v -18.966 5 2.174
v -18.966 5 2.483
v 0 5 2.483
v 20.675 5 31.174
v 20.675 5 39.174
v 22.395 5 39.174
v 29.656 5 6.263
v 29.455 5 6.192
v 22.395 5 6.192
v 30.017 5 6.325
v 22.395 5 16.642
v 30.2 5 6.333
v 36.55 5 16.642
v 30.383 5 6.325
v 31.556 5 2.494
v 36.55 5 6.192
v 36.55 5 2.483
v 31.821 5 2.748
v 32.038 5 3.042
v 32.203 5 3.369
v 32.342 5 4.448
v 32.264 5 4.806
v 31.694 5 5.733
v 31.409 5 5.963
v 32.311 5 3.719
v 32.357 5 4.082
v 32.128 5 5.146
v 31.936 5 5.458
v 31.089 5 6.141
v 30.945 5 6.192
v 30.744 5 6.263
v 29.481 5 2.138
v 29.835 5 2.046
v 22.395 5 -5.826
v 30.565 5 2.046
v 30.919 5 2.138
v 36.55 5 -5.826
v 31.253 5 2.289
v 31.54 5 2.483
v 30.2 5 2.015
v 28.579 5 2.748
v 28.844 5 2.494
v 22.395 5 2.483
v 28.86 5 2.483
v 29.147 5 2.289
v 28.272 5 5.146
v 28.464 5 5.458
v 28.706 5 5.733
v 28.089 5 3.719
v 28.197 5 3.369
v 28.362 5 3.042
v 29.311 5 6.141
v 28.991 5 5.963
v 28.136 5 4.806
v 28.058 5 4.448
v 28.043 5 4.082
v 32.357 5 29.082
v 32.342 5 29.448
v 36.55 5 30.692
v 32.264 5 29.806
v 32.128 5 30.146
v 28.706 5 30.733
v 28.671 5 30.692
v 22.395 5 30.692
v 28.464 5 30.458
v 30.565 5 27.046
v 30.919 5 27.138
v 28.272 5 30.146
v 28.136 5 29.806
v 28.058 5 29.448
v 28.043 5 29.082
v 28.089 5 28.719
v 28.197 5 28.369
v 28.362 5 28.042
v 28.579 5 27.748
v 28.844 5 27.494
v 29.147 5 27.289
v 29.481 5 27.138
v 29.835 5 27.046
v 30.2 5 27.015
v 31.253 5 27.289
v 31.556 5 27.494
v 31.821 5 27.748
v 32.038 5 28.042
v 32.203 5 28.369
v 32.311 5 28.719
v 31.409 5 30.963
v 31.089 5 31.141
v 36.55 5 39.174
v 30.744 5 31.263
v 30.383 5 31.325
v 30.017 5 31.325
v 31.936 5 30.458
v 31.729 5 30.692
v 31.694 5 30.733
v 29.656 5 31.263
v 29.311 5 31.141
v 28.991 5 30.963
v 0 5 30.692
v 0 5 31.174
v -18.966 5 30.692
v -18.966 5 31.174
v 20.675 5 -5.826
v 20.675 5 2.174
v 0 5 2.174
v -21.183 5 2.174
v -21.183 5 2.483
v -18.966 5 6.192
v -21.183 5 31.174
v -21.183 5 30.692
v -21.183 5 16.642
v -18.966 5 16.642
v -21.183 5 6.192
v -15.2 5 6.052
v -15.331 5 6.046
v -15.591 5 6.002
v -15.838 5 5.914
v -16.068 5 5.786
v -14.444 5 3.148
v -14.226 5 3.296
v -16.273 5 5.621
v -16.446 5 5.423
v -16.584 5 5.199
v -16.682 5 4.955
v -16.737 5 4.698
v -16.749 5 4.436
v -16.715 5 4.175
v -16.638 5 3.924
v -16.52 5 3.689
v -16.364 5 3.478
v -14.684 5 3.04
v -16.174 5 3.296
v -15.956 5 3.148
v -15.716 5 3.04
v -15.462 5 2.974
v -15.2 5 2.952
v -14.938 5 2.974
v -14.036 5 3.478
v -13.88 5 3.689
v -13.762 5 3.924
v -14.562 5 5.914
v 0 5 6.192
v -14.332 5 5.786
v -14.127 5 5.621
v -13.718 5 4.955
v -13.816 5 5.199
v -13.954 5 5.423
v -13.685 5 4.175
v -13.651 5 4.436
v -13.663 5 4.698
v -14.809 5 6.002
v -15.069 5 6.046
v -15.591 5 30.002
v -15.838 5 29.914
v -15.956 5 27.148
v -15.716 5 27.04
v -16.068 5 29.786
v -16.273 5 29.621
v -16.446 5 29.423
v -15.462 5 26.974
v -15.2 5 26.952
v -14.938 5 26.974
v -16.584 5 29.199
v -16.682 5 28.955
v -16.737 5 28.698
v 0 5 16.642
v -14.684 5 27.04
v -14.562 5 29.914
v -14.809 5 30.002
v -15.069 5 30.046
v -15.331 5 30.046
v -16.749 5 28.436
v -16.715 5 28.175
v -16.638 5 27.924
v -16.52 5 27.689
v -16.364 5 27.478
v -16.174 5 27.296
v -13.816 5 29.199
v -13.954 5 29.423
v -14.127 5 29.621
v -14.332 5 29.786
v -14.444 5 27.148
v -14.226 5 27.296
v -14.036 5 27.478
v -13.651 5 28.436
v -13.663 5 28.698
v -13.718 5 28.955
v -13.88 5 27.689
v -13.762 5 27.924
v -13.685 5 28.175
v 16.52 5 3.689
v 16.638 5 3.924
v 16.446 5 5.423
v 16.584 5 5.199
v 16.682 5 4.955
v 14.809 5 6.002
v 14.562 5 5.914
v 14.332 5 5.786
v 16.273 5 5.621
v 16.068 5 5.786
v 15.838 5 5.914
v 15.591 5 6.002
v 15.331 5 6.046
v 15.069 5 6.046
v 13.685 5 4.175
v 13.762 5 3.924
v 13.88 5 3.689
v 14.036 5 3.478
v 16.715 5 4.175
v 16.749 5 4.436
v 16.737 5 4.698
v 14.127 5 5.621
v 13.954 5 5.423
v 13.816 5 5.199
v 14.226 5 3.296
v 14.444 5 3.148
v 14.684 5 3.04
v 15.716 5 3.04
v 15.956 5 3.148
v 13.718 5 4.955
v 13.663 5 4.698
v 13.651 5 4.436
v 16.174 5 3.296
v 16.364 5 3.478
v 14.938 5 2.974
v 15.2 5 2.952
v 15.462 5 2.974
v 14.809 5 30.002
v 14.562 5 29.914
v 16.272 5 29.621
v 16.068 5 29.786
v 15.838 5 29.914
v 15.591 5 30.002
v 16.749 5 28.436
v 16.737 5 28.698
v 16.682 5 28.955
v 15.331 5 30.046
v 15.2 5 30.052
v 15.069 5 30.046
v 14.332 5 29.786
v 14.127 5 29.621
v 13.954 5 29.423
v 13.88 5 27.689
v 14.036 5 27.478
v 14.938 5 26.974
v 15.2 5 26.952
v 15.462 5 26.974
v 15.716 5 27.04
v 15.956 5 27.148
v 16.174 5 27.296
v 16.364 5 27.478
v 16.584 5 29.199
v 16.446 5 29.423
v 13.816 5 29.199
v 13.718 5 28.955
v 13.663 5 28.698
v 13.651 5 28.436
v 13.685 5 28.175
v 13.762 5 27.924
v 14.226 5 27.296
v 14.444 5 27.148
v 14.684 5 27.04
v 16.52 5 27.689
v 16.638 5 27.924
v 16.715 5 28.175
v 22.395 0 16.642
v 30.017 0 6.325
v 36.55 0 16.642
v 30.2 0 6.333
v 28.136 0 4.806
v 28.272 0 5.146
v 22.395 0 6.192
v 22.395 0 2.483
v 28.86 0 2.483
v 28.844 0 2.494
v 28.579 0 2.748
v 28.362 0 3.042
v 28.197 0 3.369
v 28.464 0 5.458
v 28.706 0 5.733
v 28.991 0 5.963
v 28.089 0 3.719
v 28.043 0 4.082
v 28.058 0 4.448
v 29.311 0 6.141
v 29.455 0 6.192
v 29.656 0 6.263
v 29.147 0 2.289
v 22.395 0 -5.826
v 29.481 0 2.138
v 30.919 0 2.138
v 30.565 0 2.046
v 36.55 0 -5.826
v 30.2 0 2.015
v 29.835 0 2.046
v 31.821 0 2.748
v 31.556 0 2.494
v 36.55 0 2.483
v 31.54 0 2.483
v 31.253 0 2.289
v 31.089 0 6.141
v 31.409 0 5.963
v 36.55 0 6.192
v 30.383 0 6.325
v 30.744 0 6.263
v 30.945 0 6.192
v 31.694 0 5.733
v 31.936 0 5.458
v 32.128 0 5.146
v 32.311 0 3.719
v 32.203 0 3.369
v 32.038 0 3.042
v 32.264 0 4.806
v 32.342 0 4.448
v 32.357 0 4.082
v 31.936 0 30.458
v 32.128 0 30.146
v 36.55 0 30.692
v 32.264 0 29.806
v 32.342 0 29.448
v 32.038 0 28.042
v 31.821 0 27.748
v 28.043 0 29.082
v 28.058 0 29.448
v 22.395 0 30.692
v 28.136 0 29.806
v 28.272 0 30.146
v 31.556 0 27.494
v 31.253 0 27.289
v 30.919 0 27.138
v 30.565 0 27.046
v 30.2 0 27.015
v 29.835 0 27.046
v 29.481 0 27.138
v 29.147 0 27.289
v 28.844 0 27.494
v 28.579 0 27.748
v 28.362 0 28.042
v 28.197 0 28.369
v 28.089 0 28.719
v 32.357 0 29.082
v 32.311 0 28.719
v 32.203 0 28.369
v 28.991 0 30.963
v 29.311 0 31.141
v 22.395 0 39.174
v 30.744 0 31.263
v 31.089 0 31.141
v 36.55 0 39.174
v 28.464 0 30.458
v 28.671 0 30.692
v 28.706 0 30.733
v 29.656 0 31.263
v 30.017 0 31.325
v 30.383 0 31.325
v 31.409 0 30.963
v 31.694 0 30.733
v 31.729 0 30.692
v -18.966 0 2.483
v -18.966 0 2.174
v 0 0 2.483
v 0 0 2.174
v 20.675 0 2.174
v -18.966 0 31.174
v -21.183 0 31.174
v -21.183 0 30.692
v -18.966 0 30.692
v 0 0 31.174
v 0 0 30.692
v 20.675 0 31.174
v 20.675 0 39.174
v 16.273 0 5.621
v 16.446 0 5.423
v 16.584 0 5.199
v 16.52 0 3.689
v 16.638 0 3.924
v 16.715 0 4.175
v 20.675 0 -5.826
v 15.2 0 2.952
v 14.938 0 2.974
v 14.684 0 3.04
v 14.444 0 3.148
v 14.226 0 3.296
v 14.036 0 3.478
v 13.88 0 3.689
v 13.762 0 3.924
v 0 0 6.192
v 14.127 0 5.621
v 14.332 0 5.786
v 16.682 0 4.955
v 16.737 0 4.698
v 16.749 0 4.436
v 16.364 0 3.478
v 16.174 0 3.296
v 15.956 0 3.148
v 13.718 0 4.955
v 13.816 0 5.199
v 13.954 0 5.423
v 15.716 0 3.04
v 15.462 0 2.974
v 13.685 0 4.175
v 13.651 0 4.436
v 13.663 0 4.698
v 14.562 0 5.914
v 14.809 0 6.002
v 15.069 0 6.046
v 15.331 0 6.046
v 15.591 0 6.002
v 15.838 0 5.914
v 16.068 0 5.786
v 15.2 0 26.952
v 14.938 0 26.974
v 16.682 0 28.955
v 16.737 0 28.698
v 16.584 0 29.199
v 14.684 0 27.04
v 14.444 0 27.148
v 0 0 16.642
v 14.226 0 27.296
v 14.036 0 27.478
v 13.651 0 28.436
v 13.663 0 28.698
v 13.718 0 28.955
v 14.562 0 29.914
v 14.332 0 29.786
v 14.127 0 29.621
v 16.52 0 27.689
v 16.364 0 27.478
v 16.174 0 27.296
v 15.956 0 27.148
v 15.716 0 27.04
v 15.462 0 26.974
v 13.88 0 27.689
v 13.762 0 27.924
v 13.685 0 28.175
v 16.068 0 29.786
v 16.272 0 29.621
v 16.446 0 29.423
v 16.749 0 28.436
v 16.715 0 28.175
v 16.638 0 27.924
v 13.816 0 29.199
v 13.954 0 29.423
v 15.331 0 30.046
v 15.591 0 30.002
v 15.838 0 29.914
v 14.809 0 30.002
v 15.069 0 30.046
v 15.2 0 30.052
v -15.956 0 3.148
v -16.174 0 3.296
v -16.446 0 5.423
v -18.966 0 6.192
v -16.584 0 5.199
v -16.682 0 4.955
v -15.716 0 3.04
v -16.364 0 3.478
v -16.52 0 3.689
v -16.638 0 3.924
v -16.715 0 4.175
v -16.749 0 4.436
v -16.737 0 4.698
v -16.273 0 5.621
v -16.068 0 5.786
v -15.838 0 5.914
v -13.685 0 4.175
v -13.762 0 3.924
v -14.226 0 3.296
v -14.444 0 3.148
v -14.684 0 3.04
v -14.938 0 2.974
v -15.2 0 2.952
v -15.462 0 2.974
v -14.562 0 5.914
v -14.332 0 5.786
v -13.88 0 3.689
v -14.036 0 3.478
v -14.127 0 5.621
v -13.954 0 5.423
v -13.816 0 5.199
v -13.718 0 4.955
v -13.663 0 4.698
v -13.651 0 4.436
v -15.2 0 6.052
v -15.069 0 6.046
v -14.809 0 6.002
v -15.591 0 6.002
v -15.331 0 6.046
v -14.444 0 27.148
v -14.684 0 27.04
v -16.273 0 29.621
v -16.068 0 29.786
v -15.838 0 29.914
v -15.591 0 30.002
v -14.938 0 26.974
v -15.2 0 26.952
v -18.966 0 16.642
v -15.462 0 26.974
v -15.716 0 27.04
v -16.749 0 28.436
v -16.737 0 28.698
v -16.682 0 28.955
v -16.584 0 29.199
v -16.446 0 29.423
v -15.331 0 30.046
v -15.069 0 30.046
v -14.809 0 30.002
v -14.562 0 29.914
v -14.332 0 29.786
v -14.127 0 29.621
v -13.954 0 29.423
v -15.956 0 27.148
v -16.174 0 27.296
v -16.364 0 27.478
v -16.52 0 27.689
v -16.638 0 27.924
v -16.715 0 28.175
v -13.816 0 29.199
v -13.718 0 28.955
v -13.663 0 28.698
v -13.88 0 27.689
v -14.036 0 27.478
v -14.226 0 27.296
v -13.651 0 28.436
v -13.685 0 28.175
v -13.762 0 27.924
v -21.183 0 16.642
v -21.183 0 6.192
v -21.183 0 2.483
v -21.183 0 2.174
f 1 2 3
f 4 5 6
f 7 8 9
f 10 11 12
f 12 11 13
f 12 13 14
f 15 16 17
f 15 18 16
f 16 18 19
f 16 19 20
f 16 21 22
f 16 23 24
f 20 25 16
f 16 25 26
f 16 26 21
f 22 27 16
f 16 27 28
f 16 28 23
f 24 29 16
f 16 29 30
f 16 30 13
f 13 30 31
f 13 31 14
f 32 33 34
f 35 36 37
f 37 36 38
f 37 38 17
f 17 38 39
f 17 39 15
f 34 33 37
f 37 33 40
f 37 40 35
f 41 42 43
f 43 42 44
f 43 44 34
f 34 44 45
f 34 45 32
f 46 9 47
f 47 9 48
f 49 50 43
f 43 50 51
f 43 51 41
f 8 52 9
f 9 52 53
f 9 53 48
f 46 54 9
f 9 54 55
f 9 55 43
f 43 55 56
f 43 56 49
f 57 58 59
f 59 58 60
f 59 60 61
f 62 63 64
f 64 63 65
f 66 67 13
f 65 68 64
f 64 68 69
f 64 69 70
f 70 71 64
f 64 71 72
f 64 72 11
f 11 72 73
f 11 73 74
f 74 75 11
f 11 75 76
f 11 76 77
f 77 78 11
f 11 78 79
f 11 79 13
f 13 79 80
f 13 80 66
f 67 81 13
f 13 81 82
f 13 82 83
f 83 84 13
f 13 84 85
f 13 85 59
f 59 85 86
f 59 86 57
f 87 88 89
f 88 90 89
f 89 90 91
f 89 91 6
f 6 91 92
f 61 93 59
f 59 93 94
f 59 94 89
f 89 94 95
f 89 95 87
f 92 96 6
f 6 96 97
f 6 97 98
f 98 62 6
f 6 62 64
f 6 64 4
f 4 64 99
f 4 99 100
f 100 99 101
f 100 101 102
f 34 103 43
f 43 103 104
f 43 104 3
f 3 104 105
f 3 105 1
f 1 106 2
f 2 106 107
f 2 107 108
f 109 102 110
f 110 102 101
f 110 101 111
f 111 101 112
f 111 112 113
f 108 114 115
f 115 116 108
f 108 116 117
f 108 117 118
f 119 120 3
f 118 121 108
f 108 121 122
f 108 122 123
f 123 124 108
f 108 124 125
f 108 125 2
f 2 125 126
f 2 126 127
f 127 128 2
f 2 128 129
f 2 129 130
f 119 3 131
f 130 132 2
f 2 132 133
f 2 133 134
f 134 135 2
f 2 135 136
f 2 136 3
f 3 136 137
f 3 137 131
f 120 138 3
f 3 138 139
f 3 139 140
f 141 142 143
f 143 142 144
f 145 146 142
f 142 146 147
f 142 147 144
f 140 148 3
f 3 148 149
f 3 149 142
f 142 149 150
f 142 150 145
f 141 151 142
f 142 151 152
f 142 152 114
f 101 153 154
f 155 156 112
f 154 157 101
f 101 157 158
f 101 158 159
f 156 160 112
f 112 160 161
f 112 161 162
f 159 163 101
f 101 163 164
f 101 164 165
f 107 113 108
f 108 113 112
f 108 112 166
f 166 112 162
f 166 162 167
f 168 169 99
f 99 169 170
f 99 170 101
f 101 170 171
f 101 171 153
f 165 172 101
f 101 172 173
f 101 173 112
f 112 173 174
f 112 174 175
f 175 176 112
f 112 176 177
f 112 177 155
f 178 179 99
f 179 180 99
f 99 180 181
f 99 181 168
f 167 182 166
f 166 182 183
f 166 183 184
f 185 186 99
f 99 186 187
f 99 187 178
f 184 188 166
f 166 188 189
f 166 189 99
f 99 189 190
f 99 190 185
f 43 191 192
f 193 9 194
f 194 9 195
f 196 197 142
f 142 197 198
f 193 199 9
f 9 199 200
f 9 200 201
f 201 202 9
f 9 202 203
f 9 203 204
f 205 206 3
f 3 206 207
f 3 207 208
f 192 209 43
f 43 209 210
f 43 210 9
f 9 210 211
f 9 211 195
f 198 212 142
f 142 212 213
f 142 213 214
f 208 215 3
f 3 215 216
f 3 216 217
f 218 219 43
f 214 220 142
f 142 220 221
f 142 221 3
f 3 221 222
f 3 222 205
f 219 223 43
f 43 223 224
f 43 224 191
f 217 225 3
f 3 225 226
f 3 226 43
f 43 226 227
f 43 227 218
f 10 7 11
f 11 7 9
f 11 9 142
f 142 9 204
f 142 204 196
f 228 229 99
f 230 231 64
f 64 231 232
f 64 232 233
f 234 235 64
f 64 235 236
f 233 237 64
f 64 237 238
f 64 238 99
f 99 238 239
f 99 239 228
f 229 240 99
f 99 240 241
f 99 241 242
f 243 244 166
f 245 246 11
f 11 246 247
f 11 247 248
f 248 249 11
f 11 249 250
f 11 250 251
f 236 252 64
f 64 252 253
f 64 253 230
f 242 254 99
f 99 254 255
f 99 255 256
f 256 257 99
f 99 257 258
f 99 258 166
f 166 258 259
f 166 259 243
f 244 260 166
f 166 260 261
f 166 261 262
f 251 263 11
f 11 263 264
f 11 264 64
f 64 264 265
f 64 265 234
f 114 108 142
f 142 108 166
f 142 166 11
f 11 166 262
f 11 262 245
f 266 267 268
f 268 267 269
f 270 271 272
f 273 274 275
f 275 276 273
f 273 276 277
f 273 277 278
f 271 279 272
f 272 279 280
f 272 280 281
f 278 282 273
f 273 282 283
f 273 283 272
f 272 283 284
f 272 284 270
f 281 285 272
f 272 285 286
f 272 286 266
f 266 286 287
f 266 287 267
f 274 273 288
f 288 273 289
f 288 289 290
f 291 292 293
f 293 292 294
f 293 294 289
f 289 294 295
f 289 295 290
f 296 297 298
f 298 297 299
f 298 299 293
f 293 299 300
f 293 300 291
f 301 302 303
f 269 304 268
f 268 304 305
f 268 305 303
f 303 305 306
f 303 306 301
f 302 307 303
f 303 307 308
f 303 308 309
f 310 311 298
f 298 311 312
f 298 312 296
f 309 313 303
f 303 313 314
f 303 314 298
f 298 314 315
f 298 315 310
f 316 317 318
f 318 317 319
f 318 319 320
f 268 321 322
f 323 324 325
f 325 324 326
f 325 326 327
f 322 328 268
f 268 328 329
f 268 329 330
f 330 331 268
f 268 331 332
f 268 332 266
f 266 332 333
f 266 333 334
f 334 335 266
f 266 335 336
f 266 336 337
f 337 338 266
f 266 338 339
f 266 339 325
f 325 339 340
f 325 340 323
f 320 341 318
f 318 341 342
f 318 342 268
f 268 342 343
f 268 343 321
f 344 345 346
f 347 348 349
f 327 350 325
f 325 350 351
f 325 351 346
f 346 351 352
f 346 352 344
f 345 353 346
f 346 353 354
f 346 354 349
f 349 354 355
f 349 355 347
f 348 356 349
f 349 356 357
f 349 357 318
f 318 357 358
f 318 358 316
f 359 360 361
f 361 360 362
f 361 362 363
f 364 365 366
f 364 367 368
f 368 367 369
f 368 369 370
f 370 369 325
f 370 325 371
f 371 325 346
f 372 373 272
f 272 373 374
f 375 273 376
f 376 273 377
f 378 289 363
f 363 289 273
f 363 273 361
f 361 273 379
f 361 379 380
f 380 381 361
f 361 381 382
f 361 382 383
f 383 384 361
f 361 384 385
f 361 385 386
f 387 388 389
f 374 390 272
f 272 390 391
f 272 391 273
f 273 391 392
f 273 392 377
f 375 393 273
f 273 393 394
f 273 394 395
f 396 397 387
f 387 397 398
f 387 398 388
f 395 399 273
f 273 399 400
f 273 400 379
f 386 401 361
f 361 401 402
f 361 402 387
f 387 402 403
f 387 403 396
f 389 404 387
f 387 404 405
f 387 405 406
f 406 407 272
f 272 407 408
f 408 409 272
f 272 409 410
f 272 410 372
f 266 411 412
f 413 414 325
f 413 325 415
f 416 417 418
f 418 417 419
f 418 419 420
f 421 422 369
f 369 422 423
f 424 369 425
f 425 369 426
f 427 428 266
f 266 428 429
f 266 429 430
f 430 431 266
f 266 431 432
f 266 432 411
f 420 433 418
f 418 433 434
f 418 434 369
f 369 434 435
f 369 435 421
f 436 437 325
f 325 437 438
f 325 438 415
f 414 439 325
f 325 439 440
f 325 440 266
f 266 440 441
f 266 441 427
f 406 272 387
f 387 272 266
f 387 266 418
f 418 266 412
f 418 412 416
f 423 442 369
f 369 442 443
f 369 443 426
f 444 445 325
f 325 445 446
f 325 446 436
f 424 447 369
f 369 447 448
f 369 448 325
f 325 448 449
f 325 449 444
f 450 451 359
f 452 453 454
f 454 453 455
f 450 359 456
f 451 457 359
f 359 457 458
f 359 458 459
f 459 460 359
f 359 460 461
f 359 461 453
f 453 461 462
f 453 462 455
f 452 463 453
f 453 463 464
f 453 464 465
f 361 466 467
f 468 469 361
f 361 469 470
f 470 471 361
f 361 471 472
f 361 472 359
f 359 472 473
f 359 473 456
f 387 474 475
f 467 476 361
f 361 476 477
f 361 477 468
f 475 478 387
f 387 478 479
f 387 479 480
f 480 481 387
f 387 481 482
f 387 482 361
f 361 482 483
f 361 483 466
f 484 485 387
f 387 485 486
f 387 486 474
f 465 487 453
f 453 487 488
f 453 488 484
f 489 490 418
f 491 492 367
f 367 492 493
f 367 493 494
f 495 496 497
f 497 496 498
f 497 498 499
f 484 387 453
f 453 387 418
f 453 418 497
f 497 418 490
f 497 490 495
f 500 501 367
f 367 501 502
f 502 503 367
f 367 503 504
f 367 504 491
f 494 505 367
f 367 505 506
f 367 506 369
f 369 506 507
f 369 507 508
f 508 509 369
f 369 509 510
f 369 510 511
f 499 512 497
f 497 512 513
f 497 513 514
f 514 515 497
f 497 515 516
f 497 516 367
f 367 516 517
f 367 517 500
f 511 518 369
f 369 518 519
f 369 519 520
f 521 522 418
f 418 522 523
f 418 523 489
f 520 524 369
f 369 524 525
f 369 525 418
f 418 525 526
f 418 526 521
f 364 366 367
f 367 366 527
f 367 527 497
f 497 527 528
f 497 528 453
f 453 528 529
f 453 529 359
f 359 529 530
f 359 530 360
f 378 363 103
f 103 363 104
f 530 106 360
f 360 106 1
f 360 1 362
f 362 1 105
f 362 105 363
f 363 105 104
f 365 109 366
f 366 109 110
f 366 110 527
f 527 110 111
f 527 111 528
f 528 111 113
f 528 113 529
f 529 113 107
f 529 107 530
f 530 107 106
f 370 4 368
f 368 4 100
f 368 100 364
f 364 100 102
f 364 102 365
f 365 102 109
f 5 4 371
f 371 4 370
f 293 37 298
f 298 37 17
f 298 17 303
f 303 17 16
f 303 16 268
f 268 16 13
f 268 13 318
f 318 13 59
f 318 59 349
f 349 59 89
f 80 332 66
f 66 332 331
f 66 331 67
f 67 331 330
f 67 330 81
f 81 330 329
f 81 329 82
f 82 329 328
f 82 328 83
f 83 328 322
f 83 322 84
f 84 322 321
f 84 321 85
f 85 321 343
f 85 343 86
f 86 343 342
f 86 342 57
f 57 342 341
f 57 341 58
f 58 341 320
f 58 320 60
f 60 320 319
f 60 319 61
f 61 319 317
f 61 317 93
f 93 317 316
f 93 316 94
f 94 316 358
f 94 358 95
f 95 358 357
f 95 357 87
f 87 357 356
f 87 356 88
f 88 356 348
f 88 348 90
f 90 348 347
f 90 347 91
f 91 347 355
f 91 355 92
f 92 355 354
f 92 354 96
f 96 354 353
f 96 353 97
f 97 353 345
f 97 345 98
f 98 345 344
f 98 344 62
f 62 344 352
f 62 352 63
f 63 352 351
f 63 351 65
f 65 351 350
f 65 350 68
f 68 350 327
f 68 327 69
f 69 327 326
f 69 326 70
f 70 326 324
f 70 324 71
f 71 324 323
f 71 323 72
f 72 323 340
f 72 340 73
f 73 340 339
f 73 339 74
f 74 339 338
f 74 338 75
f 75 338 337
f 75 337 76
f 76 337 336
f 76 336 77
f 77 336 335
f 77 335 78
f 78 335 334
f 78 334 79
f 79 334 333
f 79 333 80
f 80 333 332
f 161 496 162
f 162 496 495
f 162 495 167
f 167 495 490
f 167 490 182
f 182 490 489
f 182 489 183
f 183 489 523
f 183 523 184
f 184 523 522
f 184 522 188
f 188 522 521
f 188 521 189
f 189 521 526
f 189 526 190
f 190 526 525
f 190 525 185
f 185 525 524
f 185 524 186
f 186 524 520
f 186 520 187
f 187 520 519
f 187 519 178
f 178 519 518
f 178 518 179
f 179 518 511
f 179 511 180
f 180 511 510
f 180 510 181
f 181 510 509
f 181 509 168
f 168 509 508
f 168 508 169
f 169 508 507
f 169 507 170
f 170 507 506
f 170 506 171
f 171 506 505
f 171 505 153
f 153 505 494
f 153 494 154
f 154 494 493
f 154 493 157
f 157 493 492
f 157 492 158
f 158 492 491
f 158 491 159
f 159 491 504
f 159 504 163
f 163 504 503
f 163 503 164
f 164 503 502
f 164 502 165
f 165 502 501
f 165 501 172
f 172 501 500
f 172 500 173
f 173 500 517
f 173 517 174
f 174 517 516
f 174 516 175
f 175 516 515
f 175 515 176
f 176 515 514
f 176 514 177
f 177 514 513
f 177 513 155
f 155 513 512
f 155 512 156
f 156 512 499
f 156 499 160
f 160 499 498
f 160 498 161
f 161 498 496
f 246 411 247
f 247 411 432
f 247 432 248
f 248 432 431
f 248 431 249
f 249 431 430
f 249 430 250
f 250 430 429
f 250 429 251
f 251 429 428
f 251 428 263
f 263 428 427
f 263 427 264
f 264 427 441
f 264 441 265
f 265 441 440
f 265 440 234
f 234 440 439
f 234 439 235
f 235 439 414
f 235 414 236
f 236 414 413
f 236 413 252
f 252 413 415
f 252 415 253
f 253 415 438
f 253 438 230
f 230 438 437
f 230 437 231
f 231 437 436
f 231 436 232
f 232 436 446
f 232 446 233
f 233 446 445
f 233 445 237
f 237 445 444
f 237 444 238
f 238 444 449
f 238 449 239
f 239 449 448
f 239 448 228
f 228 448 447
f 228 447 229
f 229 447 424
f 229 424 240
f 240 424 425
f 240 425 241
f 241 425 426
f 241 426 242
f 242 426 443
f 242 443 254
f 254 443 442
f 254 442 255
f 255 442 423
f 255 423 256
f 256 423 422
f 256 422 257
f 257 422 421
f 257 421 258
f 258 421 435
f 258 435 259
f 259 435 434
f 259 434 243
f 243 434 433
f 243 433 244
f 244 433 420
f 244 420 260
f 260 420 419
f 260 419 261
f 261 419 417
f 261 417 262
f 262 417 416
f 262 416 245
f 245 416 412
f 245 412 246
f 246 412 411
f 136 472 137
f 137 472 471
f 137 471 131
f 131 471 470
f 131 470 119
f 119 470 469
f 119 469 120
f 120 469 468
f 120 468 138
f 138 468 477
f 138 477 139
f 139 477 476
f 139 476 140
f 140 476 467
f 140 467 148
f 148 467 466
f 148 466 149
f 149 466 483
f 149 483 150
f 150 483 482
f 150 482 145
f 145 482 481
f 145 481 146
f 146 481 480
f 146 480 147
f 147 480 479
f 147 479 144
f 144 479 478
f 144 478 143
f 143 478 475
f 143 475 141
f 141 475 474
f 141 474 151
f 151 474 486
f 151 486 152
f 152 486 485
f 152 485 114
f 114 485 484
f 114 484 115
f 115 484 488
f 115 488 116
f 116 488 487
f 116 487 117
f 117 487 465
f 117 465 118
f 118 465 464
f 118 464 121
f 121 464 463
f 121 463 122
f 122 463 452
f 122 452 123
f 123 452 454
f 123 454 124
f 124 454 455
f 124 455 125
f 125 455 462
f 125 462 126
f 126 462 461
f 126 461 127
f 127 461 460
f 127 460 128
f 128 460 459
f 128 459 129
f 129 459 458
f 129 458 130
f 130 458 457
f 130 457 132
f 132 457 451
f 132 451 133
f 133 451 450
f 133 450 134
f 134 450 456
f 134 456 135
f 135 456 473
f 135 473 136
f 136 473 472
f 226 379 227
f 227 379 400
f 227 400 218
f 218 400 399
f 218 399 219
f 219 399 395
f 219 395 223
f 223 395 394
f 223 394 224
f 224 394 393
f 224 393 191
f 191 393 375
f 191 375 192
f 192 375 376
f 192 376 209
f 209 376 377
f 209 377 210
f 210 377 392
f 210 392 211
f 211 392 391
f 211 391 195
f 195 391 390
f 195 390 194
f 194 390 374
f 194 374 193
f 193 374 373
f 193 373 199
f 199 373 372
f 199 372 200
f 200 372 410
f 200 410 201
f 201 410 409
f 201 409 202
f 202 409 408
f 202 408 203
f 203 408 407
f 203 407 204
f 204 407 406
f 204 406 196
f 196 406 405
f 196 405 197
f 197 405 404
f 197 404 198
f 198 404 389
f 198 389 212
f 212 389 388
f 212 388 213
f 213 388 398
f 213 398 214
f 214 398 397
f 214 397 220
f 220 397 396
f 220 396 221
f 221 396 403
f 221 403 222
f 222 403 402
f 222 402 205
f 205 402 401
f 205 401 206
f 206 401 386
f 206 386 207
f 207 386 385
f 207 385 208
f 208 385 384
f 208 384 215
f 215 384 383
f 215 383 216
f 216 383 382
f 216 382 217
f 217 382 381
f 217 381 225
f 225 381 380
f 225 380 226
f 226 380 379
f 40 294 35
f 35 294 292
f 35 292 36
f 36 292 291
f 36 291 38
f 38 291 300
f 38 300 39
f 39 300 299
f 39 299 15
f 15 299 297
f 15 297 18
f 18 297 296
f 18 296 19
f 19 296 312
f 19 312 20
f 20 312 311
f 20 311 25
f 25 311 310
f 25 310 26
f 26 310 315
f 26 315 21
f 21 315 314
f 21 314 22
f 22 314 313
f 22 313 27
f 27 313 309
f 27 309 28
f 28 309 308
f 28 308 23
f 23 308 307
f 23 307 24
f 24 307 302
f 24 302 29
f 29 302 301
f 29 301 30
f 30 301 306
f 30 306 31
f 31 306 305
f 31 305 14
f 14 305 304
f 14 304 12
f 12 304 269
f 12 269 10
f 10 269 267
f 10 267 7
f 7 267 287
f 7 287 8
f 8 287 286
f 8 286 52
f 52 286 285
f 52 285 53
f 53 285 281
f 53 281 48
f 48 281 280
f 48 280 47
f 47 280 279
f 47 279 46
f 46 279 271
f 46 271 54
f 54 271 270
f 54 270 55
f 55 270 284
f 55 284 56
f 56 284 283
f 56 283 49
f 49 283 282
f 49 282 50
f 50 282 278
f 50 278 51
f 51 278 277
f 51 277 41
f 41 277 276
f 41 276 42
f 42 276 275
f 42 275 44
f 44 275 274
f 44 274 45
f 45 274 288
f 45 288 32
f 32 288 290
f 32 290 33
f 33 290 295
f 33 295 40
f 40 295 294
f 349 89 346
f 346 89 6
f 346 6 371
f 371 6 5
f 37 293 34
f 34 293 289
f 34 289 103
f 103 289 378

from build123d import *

# Parameters (mm, degrees)
SKETCH1_R           = 2.159
SKETCH1_R_2         = 1.55
BOSS_EXTRUDE1_DEPTH = 5
SKETCH2_W           = 32.727568347
SKETCH2_H           = 13.013122107
SKETCH2_W_2         = 39.41277834
SKETCH2_H_2         = 24.474392352
CUT_EXTRUDE1_DEPTH  = 58.151492497


with BuildPart() as part:
    # Sketch1 → Boss-Extrude1 (new body)
    with BuildSketch(Plane(origin=(0, 0, 0), x_dir=(1, 0, 0), z_dir=(0, 1, 0))):
        Polygon((36.55, 27.14922), (36.55, -43.65078), (20.675, -43.65078), (20.675, -31.173955128), (-21.18269604, -31.173955128), (-21.18269604, -2.173955128), (20.675, -2.173955128), (20.675, 27.14922), align=None)
        with Locations(Location((30.2, -29.173955128, 0), (0, 0, 90))):
            Circle(SKETCH1_R, mode=Mode.SUBTRACT)
        with Locations(Location((-15.2, -28.50156, 0), (0, 0, 90))):
            Circle(SKETCH1_R_2, mode=Mode.SUBTRACT)
        with Locations(Location((15.19999, -28.50156, 0), (0, 0, 270))):
            Circle(SKETCH1_R_2, mode=Mode.SUBTRACT)
        with Locations(Location((-15.2, -4.50156, 0), (0, 0, 270))):
            Circle(SKETCH1_R_2, mode=Mode.SUBTRACT)
        with Locations(Location((15.2, -4.50156, 0), (0, 0, 90))):
            Circle(SKETCH1_R_2, mode=Mode.SUBTRACT)
        with Locations(Location((30.2, -4.173955128, 0), (0, 0, 270))):
            Circle(SKETCH1_R, mode=Mode.SUBTRACT)
    extrude(amount=BOSS_EXTRUDE1_DEPTH)

    # Sketch2 → Cut-Extrude1 (cut, through all)
    with BuildSketch(Plane(origin=(0, 5, 0), x_dir=(1, 0, 0), z_dir=(0, 1, 0))):
        with Locations((29.057065878, -45.680516182)):
            Rectangle(SKETCH2_W, SKETCH2_H)
        with Locations((32.399670874, 18.063241048)):
            Rectangle(SKETCH2_W_2, SKETCH2_H_2)
    extrude(amount=-CUT_EXTRUDE1_DEPTH, mode=Mode.SUBTRACT)


solid = part.part
